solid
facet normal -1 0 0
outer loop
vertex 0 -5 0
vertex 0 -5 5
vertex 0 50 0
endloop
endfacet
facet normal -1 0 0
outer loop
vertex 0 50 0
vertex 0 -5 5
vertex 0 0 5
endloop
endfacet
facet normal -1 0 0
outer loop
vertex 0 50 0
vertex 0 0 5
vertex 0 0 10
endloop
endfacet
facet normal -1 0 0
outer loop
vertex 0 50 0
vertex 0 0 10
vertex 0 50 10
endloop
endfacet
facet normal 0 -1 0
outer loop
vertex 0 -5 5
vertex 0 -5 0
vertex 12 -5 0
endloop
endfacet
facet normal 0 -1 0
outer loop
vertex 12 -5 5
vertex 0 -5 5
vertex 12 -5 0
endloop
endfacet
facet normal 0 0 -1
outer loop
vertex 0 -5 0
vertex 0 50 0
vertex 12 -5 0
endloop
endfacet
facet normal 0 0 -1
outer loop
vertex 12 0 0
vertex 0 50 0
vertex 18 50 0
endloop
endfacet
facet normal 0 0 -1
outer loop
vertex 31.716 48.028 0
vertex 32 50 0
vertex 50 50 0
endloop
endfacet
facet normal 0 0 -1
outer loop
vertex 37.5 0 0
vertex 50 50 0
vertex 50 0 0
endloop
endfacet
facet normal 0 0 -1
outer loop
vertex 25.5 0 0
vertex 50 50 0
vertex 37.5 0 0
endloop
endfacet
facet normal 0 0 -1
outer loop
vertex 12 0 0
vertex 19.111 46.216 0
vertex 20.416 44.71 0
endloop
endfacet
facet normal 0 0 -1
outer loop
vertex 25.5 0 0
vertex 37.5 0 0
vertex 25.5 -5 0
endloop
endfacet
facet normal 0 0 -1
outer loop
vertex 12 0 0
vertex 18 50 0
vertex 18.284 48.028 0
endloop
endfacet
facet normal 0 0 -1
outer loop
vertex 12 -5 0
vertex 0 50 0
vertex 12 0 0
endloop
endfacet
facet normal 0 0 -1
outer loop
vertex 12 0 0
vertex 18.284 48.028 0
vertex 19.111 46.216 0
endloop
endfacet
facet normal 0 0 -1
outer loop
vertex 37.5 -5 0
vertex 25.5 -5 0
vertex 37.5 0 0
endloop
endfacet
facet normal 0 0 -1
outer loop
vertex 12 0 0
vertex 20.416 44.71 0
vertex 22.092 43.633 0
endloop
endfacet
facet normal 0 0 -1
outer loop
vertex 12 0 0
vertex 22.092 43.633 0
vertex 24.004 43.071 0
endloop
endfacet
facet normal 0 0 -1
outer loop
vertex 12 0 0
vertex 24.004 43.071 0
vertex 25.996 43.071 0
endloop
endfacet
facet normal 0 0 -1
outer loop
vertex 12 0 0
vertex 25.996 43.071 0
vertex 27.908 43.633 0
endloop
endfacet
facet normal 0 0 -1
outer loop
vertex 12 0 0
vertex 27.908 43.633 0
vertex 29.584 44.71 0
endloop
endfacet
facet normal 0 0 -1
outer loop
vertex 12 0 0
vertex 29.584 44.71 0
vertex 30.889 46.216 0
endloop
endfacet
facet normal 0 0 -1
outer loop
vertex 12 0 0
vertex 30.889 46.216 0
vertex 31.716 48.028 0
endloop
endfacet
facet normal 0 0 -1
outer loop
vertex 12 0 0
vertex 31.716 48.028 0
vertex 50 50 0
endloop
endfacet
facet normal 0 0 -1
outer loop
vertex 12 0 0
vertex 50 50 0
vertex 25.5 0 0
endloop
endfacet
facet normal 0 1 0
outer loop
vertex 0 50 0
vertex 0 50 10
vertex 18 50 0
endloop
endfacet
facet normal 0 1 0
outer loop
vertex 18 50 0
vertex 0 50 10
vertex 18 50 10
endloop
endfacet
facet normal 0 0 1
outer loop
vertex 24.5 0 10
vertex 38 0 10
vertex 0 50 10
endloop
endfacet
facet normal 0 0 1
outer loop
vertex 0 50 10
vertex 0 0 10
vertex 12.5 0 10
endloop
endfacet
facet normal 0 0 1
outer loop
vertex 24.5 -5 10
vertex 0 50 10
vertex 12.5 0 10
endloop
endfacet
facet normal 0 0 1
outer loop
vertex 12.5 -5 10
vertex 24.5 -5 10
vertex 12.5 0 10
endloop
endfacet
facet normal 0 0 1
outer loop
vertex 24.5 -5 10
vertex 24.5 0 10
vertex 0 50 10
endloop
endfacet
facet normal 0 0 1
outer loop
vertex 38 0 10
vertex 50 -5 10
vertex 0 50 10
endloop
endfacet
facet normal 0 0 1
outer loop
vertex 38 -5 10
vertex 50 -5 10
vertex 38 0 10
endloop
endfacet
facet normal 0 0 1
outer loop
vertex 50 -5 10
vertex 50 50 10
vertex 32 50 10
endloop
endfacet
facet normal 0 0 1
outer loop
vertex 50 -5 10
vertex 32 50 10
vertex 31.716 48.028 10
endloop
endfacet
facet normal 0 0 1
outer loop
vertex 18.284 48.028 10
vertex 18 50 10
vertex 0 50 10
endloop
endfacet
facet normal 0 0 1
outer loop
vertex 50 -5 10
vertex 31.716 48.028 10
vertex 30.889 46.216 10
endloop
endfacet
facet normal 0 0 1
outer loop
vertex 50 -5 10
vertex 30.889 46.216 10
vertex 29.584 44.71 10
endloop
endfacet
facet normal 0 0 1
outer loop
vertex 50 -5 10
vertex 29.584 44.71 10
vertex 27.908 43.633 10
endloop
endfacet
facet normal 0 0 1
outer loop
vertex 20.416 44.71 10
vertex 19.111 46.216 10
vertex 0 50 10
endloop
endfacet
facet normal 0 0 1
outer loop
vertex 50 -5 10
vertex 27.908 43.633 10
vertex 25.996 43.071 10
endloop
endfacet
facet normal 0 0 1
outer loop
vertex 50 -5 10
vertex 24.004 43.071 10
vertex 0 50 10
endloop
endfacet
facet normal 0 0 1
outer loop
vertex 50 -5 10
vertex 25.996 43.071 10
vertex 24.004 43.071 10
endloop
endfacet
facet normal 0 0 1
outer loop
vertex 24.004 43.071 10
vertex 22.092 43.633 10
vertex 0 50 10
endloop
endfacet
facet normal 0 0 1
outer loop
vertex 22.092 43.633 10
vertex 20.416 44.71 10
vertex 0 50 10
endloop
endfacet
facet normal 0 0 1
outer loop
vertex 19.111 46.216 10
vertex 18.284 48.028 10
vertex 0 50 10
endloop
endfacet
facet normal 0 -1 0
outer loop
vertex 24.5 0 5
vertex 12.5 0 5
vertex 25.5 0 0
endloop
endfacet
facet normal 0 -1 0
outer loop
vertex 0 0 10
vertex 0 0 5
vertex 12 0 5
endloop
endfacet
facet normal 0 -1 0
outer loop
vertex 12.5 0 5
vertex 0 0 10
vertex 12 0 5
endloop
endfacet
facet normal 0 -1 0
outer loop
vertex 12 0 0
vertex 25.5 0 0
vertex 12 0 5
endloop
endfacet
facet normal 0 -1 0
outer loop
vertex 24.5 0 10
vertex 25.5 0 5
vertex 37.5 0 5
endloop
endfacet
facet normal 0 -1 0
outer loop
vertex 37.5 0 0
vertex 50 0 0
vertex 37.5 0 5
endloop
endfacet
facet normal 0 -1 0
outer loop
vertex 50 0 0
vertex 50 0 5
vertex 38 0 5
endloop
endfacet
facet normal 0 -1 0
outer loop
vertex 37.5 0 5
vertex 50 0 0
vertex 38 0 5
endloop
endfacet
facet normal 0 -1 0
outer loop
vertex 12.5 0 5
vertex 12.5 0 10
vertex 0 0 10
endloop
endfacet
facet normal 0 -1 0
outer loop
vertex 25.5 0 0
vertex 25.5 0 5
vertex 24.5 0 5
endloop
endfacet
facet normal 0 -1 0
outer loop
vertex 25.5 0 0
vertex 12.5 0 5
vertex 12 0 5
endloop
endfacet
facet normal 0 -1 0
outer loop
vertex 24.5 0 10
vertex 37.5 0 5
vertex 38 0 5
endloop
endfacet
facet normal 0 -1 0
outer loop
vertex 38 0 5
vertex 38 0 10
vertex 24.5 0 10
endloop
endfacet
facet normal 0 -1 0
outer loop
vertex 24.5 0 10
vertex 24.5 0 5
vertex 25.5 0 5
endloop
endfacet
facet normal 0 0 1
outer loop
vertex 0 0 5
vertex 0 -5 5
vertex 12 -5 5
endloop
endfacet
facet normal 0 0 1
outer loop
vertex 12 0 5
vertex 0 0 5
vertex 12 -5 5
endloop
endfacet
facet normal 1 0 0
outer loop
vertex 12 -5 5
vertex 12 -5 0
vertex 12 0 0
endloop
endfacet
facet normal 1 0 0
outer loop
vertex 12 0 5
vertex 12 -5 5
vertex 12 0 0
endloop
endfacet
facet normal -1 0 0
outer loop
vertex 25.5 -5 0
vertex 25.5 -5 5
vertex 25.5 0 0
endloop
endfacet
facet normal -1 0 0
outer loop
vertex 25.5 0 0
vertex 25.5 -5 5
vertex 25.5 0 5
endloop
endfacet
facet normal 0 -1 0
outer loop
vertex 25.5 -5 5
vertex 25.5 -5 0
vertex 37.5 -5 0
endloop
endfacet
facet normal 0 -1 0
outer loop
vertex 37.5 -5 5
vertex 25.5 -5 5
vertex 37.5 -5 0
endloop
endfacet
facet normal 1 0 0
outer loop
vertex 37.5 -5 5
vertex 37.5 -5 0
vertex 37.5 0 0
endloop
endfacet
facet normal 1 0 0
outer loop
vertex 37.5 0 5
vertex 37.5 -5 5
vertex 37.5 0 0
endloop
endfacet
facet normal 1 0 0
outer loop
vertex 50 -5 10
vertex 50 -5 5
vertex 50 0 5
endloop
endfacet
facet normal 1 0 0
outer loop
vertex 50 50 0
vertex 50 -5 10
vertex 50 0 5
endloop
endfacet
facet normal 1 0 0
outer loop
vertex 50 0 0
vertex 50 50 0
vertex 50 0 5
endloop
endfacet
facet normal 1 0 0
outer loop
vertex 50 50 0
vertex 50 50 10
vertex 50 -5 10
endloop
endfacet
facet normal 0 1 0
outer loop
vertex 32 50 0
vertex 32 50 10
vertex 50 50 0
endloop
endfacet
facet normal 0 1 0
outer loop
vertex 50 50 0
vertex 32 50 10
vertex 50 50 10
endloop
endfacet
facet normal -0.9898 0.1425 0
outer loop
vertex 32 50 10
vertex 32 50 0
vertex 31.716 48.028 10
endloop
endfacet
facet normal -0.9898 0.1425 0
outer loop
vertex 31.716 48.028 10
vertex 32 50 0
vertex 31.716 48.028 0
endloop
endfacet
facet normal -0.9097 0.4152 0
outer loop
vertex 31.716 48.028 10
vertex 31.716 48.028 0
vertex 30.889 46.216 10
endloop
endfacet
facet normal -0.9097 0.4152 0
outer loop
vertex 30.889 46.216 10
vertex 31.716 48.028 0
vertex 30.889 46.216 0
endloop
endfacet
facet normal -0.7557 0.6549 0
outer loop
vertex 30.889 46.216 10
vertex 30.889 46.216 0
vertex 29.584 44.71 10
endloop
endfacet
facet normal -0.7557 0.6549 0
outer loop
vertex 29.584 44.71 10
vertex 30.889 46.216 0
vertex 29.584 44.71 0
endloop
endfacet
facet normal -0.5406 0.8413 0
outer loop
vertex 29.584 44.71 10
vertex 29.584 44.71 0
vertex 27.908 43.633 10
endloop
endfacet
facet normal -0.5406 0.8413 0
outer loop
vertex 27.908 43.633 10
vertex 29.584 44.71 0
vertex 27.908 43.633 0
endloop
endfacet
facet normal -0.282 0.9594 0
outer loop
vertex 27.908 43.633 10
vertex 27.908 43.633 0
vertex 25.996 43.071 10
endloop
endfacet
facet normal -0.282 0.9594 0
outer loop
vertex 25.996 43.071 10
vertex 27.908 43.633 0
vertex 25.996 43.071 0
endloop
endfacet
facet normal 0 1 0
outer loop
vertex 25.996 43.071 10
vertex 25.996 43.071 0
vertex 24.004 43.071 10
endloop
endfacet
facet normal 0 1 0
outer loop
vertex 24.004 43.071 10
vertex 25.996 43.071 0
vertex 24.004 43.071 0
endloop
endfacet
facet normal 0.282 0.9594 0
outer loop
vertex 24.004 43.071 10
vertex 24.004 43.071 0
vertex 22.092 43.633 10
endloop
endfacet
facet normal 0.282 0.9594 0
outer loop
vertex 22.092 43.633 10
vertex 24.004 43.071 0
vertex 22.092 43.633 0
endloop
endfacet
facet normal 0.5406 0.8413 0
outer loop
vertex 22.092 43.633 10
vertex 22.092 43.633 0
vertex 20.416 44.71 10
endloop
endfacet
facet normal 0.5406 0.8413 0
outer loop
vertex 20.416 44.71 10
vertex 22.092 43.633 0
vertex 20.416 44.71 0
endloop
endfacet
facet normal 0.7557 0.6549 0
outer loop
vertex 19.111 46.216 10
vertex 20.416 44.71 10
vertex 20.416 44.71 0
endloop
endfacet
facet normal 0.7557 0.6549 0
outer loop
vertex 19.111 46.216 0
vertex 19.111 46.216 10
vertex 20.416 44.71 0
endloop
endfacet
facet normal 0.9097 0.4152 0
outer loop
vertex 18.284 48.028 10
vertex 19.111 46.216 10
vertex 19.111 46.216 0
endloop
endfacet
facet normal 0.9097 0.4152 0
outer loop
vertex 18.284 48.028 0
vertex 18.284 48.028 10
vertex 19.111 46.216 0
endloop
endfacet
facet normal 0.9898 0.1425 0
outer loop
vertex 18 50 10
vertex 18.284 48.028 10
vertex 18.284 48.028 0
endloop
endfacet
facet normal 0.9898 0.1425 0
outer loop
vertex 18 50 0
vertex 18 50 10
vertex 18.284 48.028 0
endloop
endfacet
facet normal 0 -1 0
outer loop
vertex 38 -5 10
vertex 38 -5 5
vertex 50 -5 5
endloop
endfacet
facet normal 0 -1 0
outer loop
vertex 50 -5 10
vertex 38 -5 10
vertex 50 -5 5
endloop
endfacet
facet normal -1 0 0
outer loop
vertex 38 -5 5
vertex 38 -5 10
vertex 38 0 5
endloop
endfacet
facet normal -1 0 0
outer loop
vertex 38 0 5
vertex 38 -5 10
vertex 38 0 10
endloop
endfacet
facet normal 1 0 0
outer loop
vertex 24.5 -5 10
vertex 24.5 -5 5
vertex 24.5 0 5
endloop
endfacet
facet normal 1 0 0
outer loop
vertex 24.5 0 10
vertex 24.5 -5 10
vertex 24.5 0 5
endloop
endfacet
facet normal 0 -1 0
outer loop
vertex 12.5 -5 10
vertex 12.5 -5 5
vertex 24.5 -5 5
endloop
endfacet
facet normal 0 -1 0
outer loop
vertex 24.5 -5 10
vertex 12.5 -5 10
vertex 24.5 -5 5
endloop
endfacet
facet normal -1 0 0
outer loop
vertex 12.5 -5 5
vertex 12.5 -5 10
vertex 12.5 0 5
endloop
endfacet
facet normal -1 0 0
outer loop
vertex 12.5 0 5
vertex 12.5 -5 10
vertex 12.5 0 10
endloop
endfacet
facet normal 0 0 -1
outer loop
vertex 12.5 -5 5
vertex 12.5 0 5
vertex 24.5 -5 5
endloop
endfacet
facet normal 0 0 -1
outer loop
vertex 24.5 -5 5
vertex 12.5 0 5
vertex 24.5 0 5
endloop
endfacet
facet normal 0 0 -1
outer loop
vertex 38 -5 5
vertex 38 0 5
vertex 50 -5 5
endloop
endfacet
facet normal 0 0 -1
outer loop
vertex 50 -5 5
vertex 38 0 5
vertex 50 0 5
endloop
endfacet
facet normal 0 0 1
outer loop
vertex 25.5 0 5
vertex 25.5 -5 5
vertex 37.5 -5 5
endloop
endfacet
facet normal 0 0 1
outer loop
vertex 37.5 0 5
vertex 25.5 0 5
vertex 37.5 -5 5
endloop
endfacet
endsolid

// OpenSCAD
difference() {
	cube([50, 50, 10]);
	translate([25,50,0]) {cylinder(10, r=7);}
}

translate([0,-5,0]) {
	cube([12,5,5]);
	translate([25.5,0,0]) {cube([12,5,5]);}
}
translate([12.5,-5,5]) {
	cube([12,5,5]);
	translate([25.5,0,0]) {cube([12,5,5]);}
}
